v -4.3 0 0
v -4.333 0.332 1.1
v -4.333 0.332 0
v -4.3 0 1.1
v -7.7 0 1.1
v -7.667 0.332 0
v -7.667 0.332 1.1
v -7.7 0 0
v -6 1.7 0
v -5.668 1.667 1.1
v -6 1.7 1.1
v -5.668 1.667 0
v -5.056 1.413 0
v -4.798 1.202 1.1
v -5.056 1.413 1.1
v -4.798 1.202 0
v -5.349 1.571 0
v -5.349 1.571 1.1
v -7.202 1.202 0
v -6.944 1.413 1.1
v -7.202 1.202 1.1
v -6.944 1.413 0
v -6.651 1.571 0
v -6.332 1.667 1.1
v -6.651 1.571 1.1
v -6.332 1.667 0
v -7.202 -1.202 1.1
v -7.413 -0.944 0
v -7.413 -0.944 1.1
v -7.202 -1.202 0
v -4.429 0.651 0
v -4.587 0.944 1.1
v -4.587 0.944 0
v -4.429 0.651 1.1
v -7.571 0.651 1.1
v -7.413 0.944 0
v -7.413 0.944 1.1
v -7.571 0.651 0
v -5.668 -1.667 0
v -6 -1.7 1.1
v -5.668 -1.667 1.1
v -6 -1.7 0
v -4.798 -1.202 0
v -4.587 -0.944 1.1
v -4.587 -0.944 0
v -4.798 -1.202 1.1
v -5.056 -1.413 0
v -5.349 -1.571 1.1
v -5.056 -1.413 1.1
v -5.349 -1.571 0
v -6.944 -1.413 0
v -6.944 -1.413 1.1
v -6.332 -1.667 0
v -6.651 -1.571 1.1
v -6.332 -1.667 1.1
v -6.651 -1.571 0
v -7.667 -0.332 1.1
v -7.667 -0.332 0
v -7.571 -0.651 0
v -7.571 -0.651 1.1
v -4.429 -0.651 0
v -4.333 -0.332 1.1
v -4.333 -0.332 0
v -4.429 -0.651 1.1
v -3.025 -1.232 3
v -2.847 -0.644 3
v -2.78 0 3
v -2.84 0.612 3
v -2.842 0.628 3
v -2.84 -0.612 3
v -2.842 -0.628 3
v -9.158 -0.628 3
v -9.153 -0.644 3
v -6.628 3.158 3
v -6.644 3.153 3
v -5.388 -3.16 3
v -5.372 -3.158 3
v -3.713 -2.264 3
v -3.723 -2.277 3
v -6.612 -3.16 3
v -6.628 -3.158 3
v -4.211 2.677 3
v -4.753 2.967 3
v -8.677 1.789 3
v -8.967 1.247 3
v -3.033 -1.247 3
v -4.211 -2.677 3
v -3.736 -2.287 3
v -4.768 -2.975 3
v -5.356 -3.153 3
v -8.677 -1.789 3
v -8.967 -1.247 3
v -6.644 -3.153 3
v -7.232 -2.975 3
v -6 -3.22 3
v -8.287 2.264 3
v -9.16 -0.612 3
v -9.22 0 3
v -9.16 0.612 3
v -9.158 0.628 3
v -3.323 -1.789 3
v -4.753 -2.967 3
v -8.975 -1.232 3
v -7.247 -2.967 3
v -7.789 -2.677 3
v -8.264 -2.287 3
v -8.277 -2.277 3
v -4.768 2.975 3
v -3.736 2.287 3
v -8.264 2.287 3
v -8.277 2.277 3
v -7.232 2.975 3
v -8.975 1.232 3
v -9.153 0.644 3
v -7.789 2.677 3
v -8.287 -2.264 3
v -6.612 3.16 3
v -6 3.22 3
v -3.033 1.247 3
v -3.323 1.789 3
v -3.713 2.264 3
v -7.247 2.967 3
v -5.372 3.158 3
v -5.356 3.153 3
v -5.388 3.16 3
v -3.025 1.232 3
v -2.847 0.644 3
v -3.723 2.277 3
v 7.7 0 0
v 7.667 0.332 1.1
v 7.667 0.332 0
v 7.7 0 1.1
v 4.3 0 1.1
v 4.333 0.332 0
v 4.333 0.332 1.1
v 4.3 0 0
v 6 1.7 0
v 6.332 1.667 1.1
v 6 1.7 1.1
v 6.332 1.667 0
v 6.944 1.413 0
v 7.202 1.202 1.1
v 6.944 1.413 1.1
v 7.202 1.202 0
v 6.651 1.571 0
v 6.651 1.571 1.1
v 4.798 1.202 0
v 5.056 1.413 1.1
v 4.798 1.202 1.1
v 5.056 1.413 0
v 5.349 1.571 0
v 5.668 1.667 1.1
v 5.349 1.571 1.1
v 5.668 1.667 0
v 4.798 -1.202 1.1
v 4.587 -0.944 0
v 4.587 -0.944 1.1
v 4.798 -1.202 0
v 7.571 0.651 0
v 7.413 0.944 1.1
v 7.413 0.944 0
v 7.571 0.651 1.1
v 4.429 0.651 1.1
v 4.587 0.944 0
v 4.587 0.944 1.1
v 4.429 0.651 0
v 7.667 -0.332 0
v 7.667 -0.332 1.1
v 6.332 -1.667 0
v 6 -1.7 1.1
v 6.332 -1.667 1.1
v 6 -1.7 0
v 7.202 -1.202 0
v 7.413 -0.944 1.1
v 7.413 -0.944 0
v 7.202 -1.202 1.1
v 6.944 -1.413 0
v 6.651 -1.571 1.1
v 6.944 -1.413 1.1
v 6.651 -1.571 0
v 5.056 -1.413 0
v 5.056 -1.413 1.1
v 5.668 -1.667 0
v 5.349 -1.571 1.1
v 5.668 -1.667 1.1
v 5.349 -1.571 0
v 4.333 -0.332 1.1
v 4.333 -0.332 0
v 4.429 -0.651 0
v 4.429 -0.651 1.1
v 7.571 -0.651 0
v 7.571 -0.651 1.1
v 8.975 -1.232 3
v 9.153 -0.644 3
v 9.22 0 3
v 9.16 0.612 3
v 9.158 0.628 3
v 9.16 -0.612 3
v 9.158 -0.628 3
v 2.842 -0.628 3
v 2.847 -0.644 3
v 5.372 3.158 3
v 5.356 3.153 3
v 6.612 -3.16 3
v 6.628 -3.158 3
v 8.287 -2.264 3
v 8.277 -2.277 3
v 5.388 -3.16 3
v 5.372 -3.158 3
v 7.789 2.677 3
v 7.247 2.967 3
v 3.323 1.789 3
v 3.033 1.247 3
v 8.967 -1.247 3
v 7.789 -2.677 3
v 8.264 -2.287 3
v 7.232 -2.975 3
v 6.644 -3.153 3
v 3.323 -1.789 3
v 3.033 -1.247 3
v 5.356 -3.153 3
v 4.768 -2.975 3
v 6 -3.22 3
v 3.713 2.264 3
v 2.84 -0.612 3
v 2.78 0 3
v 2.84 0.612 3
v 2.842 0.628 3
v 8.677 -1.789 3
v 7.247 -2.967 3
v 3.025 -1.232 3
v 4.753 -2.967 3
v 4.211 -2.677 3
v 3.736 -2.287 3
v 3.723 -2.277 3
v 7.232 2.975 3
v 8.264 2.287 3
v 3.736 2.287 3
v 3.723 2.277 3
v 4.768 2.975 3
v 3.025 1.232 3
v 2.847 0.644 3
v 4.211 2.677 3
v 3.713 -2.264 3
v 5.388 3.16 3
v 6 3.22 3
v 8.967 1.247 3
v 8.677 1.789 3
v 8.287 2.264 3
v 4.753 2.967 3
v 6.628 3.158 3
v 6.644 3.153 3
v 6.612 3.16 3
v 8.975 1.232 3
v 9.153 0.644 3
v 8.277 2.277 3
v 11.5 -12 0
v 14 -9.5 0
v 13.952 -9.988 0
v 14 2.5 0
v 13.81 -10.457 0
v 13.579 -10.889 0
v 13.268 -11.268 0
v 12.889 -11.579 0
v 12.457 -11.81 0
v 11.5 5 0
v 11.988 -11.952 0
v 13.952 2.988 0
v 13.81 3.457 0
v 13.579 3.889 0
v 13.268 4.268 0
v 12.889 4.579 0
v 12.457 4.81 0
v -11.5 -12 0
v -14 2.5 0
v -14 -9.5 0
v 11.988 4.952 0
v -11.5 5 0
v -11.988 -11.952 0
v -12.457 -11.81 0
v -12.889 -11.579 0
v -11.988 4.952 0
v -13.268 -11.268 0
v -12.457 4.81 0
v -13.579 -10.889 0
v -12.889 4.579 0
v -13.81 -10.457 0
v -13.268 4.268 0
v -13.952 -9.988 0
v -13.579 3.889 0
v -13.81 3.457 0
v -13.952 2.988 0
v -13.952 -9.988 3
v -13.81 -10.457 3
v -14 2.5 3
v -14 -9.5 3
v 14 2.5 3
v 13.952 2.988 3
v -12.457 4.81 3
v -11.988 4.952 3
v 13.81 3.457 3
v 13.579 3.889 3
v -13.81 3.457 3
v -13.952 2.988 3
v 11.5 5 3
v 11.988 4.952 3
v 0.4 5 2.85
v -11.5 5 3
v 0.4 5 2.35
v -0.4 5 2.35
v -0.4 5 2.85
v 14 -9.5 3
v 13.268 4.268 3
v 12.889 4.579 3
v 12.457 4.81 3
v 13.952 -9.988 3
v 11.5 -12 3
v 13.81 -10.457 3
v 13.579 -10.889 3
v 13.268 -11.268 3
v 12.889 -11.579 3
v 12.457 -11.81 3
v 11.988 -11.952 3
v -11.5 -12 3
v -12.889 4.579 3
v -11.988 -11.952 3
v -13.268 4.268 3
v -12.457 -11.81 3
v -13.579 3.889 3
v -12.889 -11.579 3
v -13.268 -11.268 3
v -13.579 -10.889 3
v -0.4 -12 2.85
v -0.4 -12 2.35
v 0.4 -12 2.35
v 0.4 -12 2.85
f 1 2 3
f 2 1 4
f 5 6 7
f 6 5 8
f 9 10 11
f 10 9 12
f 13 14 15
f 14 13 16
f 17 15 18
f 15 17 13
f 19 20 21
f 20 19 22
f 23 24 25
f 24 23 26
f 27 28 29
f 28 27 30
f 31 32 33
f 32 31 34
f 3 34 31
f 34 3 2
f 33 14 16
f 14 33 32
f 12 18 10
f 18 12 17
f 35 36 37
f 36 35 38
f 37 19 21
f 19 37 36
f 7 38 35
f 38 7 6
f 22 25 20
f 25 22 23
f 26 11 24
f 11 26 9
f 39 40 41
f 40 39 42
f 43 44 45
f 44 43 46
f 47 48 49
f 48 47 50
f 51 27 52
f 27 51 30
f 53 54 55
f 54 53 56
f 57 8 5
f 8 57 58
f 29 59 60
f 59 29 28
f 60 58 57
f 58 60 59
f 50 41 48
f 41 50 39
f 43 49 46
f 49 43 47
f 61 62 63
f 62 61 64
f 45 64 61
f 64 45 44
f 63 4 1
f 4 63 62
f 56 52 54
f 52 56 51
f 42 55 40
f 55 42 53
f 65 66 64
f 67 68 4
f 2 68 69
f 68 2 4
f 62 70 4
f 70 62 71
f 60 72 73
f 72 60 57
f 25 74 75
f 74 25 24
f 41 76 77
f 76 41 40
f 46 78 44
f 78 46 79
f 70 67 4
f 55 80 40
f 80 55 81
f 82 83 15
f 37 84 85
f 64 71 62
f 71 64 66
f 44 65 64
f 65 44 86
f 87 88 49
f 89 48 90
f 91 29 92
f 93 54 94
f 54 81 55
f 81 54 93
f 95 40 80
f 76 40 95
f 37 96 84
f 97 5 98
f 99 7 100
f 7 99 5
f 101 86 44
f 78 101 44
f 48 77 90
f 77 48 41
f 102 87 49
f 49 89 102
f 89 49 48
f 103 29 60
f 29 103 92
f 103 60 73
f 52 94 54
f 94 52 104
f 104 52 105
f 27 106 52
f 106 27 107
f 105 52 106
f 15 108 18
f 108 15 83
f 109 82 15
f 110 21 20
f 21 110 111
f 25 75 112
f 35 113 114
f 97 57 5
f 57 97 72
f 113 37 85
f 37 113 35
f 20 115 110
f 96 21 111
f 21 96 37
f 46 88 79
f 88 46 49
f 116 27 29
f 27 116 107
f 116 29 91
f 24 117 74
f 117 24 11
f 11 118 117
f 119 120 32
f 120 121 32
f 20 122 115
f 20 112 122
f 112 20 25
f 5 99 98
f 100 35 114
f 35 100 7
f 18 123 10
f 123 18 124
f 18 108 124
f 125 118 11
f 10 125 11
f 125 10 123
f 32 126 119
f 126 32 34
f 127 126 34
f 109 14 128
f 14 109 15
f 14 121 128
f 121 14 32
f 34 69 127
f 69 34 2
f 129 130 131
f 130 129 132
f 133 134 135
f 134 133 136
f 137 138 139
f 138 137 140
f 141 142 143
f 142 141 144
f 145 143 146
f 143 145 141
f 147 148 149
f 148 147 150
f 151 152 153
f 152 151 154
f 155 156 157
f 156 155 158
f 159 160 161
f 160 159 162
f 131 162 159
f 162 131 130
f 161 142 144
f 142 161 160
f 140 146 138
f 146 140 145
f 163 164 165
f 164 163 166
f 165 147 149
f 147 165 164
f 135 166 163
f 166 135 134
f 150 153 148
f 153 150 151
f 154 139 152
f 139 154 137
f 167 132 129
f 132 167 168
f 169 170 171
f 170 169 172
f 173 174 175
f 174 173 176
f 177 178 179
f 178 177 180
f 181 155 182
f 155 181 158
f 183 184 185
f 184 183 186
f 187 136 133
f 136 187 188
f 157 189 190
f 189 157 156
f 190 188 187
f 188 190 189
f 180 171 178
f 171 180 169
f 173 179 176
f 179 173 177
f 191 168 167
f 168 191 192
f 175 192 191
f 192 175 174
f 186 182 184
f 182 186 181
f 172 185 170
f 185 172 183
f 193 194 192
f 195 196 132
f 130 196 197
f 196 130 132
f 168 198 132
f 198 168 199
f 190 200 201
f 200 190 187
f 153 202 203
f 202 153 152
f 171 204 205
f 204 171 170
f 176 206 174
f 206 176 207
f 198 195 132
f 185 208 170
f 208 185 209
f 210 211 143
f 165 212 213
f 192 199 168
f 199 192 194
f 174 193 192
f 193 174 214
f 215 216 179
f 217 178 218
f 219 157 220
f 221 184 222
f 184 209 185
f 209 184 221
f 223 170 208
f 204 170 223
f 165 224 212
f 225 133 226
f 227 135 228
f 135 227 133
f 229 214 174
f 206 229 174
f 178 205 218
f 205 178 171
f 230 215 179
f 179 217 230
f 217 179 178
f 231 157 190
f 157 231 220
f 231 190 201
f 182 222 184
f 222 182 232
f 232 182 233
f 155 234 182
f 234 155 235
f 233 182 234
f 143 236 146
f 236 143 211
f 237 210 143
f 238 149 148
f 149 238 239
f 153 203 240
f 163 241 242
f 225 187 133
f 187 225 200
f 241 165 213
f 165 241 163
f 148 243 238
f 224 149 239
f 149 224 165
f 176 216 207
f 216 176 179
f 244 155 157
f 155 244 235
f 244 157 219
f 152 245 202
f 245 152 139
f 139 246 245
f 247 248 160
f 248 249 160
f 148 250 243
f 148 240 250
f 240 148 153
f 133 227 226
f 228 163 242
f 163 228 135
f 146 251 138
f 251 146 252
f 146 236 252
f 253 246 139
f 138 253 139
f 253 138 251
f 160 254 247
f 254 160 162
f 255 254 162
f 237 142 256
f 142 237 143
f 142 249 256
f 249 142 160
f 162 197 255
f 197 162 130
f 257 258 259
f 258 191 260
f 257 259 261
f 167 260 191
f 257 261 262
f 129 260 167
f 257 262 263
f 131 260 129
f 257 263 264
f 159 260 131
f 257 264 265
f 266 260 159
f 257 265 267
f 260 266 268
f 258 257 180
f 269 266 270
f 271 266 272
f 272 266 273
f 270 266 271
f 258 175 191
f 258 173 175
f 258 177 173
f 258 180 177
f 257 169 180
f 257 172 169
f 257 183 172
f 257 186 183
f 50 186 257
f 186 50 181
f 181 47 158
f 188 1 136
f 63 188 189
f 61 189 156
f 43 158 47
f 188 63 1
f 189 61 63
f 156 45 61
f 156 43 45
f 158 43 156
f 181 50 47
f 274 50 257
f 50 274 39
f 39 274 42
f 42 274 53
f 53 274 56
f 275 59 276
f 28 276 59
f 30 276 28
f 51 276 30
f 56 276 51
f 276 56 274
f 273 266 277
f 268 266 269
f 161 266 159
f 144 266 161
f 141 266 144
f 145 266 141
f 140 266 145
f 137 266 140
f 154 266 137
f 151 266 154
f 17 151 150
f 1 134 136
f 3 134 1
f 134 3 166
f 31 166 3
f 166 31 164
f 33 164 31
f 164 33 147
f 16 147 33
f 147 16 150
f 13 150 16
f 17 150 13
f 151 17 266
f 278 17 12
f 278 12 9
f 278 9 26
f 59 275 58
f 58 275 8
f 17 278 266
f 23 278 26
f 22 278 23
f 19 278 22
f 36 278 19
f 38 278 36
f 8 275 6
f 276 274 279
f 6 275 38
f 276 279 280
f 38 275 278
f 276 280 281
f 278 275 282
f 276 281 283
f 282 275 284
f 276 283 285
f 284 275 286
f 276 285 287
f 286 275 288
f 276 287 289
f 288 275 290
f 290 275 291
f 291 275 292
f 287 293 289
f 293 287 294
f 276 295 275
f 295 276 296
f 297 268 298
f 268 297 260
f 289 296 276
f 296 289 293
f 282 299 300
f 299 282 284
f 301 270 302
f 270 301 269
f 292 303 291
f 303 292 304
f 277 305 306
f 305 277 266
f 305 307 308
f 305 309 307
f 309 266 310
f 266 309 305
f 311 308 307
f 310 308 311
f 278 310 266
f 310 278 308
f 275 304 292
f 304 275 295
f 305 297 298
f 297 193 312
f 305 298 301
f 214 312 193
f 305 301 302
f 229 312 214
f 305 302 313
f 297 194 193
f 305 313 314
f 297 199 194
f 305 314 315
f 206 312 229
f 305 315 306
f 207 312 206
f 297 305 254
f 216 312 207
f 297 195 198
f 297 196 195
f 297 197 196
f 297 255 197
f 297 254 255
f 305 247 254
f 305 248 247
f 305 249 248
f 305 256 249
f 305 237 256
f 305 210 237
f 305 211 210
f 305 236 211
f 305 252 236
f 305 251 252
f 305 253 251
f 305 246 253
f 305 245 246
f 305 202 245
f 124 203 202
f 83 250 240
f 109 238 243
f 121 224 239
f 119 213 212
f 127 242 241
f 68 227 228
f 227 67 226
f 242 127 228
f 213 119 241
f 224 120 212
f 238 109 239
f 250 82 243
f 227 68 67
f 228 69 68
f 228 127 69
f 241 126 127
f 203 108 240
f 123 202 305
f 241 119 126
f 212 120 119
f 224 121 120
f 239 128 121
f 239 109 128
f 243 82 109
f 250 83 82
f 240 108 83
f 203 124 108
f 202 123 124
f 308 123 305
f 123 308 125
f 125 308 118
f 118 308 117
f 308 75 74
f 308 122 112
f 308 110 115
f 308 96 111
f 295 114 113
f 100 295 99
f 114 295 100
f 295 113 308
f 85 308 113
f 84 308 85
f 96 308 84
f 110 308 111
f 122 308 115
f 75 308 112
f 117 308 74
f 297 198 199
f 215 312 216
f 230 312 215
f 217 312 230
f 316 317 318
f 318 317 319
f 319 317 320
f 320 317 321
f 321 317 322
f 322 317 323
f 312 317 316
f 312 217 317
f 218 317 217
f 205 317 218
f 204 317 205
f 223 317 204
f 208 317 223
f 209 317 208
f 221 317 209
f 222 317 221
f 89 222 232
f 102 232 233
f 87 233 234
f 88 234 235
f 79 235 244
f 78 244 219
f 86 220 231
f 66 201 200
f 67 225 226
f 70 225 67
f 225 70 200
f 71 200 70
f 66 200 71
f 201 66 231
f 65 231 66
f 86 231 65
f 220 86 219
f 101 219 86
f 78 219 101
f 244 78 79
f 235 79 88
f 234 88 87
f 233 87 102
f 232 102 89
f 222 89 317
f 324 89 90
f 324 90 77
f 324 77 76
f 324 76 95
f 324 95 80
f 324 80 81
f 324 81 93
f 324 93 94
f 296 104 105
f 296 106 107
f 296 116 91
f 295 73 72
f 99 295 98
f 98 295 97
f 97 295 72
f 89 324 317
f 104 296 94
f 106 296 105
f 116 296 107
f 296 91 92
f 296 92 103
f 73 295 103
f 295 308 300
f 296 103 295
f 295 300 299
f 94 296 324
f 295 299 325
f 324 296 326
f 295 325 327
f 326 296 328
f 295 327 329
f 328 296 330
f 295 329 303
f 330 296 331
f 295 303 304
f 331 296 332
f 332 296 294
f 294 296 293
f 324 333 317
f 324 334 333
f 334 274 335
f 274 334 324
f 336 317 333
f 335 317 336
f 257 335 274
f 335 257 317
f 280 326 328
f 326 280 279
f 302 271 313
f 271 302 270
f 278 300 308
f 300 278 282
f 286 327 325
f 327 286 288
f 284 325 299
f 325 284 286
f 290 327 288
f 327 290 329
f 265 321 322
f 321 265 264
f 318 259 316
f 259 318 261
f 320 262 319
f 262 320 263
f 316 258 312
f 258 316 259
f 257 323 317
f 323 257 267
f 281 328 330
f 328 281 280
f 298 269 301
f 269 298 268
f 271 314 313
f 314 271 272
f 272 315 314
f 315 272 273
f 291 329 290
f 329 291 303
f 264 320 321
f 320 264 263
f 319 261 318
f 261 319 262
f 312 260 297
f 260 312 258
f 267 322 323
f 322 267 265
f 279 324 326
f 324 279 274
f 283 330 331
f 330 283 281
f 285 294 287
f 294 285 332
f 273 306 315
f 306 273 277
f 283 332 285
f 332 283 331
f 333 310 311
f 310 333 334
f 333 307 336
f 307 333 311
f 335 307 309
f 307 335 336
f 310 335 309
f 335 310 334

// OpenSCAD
// Rear Joining Bracket for Modular 7-Segment Display
// Option 1: Flush Rear Bridge Splice
//
// Mounts across the rear seam between two adjacent panels (Panel-to-Panel or Panel-to-Colon).
// Centers on the two corner M3 screws across the seam (pitch = 12.0 mm).
// Designed with an asymmetric profile (edge_margin = 5.0 mm) so it stays 1.0 mm INSIDE
// the housing perimeter and NEVER sticks out above or below the clock!

$fn = 32;

// --- Parameters ---
thickness = 3.0;        // Bracket thickness (mm)
bracket_w = 28.0;       // Total width across seam (14mm on each panel)
edge_margin = 5.0;      // Distance from screw center to outer rim (housing edge is at 6.0mm -> 1.0mm inset!)
inward_len = 12.0;      // Extension inward towards display center for rigidity
hole_pitch = 12.0;      // Center-to-center distance between adjacent corner screws (6mm + 6mm)
fillet_r = 2.5;         // Corner radius (mm)
countersunk = true;     // Set to true for flush countersunk screws, false for flat holes

module rear_joining_bracket(thickness = thickness, countersunk = countersunk) {
    difference() {
        // Asymmetric rounded bracket body
        linear_extrude(height = thickness) {
            hull() {
                translate([-bracket_w/2 + fillet_r, -inward_len + fillet_r]) circle(r = fillet_r);
                translate([bracket_w/2 - fillet_r, -inward_len + fillet_r])  circle(r = fillet_r);
                translate([bracket_w/2 - fillet_r, edge_margin - fillet_r]) circle(r = fillet_r);
                translate([-bracket_w/2 + fillet_r, edge_margin - fillet_r]) circle(r = fillet_r);
            }
        }
        
        // 2x M3 Screw Holes (at Y = 0, spaced 12.0mm apart)
        for (x = [-hole_pitch/2, hole_pitch/2]) {
            translate([x, 0, -0.1]) {
                cylinder(h = thickness + 0.2, r = 1.7); // 3.4mm clearance for M3
                if (countersunk) {
                    // Standard 90-degree M3 countersink head
                    translate([0, 0, thickness - 1.8])
                        cylinder(h = 2.0, r1 = 1.7, r2 = 3.3);
                }
            }
        }
        
        // Subtle debossed alignment notch on the outside face to indicate seam centerline
        translate([0, (edge_margin - inward_len)/2, thickness - 0.4])
            cube([0.8, edge_margin + inward_len + 1, 0.5], center = true);
    }
}

// Render bracket for 3D printing
color("#0284c7") // Sky blue accent
    rear_joining_bracket();
